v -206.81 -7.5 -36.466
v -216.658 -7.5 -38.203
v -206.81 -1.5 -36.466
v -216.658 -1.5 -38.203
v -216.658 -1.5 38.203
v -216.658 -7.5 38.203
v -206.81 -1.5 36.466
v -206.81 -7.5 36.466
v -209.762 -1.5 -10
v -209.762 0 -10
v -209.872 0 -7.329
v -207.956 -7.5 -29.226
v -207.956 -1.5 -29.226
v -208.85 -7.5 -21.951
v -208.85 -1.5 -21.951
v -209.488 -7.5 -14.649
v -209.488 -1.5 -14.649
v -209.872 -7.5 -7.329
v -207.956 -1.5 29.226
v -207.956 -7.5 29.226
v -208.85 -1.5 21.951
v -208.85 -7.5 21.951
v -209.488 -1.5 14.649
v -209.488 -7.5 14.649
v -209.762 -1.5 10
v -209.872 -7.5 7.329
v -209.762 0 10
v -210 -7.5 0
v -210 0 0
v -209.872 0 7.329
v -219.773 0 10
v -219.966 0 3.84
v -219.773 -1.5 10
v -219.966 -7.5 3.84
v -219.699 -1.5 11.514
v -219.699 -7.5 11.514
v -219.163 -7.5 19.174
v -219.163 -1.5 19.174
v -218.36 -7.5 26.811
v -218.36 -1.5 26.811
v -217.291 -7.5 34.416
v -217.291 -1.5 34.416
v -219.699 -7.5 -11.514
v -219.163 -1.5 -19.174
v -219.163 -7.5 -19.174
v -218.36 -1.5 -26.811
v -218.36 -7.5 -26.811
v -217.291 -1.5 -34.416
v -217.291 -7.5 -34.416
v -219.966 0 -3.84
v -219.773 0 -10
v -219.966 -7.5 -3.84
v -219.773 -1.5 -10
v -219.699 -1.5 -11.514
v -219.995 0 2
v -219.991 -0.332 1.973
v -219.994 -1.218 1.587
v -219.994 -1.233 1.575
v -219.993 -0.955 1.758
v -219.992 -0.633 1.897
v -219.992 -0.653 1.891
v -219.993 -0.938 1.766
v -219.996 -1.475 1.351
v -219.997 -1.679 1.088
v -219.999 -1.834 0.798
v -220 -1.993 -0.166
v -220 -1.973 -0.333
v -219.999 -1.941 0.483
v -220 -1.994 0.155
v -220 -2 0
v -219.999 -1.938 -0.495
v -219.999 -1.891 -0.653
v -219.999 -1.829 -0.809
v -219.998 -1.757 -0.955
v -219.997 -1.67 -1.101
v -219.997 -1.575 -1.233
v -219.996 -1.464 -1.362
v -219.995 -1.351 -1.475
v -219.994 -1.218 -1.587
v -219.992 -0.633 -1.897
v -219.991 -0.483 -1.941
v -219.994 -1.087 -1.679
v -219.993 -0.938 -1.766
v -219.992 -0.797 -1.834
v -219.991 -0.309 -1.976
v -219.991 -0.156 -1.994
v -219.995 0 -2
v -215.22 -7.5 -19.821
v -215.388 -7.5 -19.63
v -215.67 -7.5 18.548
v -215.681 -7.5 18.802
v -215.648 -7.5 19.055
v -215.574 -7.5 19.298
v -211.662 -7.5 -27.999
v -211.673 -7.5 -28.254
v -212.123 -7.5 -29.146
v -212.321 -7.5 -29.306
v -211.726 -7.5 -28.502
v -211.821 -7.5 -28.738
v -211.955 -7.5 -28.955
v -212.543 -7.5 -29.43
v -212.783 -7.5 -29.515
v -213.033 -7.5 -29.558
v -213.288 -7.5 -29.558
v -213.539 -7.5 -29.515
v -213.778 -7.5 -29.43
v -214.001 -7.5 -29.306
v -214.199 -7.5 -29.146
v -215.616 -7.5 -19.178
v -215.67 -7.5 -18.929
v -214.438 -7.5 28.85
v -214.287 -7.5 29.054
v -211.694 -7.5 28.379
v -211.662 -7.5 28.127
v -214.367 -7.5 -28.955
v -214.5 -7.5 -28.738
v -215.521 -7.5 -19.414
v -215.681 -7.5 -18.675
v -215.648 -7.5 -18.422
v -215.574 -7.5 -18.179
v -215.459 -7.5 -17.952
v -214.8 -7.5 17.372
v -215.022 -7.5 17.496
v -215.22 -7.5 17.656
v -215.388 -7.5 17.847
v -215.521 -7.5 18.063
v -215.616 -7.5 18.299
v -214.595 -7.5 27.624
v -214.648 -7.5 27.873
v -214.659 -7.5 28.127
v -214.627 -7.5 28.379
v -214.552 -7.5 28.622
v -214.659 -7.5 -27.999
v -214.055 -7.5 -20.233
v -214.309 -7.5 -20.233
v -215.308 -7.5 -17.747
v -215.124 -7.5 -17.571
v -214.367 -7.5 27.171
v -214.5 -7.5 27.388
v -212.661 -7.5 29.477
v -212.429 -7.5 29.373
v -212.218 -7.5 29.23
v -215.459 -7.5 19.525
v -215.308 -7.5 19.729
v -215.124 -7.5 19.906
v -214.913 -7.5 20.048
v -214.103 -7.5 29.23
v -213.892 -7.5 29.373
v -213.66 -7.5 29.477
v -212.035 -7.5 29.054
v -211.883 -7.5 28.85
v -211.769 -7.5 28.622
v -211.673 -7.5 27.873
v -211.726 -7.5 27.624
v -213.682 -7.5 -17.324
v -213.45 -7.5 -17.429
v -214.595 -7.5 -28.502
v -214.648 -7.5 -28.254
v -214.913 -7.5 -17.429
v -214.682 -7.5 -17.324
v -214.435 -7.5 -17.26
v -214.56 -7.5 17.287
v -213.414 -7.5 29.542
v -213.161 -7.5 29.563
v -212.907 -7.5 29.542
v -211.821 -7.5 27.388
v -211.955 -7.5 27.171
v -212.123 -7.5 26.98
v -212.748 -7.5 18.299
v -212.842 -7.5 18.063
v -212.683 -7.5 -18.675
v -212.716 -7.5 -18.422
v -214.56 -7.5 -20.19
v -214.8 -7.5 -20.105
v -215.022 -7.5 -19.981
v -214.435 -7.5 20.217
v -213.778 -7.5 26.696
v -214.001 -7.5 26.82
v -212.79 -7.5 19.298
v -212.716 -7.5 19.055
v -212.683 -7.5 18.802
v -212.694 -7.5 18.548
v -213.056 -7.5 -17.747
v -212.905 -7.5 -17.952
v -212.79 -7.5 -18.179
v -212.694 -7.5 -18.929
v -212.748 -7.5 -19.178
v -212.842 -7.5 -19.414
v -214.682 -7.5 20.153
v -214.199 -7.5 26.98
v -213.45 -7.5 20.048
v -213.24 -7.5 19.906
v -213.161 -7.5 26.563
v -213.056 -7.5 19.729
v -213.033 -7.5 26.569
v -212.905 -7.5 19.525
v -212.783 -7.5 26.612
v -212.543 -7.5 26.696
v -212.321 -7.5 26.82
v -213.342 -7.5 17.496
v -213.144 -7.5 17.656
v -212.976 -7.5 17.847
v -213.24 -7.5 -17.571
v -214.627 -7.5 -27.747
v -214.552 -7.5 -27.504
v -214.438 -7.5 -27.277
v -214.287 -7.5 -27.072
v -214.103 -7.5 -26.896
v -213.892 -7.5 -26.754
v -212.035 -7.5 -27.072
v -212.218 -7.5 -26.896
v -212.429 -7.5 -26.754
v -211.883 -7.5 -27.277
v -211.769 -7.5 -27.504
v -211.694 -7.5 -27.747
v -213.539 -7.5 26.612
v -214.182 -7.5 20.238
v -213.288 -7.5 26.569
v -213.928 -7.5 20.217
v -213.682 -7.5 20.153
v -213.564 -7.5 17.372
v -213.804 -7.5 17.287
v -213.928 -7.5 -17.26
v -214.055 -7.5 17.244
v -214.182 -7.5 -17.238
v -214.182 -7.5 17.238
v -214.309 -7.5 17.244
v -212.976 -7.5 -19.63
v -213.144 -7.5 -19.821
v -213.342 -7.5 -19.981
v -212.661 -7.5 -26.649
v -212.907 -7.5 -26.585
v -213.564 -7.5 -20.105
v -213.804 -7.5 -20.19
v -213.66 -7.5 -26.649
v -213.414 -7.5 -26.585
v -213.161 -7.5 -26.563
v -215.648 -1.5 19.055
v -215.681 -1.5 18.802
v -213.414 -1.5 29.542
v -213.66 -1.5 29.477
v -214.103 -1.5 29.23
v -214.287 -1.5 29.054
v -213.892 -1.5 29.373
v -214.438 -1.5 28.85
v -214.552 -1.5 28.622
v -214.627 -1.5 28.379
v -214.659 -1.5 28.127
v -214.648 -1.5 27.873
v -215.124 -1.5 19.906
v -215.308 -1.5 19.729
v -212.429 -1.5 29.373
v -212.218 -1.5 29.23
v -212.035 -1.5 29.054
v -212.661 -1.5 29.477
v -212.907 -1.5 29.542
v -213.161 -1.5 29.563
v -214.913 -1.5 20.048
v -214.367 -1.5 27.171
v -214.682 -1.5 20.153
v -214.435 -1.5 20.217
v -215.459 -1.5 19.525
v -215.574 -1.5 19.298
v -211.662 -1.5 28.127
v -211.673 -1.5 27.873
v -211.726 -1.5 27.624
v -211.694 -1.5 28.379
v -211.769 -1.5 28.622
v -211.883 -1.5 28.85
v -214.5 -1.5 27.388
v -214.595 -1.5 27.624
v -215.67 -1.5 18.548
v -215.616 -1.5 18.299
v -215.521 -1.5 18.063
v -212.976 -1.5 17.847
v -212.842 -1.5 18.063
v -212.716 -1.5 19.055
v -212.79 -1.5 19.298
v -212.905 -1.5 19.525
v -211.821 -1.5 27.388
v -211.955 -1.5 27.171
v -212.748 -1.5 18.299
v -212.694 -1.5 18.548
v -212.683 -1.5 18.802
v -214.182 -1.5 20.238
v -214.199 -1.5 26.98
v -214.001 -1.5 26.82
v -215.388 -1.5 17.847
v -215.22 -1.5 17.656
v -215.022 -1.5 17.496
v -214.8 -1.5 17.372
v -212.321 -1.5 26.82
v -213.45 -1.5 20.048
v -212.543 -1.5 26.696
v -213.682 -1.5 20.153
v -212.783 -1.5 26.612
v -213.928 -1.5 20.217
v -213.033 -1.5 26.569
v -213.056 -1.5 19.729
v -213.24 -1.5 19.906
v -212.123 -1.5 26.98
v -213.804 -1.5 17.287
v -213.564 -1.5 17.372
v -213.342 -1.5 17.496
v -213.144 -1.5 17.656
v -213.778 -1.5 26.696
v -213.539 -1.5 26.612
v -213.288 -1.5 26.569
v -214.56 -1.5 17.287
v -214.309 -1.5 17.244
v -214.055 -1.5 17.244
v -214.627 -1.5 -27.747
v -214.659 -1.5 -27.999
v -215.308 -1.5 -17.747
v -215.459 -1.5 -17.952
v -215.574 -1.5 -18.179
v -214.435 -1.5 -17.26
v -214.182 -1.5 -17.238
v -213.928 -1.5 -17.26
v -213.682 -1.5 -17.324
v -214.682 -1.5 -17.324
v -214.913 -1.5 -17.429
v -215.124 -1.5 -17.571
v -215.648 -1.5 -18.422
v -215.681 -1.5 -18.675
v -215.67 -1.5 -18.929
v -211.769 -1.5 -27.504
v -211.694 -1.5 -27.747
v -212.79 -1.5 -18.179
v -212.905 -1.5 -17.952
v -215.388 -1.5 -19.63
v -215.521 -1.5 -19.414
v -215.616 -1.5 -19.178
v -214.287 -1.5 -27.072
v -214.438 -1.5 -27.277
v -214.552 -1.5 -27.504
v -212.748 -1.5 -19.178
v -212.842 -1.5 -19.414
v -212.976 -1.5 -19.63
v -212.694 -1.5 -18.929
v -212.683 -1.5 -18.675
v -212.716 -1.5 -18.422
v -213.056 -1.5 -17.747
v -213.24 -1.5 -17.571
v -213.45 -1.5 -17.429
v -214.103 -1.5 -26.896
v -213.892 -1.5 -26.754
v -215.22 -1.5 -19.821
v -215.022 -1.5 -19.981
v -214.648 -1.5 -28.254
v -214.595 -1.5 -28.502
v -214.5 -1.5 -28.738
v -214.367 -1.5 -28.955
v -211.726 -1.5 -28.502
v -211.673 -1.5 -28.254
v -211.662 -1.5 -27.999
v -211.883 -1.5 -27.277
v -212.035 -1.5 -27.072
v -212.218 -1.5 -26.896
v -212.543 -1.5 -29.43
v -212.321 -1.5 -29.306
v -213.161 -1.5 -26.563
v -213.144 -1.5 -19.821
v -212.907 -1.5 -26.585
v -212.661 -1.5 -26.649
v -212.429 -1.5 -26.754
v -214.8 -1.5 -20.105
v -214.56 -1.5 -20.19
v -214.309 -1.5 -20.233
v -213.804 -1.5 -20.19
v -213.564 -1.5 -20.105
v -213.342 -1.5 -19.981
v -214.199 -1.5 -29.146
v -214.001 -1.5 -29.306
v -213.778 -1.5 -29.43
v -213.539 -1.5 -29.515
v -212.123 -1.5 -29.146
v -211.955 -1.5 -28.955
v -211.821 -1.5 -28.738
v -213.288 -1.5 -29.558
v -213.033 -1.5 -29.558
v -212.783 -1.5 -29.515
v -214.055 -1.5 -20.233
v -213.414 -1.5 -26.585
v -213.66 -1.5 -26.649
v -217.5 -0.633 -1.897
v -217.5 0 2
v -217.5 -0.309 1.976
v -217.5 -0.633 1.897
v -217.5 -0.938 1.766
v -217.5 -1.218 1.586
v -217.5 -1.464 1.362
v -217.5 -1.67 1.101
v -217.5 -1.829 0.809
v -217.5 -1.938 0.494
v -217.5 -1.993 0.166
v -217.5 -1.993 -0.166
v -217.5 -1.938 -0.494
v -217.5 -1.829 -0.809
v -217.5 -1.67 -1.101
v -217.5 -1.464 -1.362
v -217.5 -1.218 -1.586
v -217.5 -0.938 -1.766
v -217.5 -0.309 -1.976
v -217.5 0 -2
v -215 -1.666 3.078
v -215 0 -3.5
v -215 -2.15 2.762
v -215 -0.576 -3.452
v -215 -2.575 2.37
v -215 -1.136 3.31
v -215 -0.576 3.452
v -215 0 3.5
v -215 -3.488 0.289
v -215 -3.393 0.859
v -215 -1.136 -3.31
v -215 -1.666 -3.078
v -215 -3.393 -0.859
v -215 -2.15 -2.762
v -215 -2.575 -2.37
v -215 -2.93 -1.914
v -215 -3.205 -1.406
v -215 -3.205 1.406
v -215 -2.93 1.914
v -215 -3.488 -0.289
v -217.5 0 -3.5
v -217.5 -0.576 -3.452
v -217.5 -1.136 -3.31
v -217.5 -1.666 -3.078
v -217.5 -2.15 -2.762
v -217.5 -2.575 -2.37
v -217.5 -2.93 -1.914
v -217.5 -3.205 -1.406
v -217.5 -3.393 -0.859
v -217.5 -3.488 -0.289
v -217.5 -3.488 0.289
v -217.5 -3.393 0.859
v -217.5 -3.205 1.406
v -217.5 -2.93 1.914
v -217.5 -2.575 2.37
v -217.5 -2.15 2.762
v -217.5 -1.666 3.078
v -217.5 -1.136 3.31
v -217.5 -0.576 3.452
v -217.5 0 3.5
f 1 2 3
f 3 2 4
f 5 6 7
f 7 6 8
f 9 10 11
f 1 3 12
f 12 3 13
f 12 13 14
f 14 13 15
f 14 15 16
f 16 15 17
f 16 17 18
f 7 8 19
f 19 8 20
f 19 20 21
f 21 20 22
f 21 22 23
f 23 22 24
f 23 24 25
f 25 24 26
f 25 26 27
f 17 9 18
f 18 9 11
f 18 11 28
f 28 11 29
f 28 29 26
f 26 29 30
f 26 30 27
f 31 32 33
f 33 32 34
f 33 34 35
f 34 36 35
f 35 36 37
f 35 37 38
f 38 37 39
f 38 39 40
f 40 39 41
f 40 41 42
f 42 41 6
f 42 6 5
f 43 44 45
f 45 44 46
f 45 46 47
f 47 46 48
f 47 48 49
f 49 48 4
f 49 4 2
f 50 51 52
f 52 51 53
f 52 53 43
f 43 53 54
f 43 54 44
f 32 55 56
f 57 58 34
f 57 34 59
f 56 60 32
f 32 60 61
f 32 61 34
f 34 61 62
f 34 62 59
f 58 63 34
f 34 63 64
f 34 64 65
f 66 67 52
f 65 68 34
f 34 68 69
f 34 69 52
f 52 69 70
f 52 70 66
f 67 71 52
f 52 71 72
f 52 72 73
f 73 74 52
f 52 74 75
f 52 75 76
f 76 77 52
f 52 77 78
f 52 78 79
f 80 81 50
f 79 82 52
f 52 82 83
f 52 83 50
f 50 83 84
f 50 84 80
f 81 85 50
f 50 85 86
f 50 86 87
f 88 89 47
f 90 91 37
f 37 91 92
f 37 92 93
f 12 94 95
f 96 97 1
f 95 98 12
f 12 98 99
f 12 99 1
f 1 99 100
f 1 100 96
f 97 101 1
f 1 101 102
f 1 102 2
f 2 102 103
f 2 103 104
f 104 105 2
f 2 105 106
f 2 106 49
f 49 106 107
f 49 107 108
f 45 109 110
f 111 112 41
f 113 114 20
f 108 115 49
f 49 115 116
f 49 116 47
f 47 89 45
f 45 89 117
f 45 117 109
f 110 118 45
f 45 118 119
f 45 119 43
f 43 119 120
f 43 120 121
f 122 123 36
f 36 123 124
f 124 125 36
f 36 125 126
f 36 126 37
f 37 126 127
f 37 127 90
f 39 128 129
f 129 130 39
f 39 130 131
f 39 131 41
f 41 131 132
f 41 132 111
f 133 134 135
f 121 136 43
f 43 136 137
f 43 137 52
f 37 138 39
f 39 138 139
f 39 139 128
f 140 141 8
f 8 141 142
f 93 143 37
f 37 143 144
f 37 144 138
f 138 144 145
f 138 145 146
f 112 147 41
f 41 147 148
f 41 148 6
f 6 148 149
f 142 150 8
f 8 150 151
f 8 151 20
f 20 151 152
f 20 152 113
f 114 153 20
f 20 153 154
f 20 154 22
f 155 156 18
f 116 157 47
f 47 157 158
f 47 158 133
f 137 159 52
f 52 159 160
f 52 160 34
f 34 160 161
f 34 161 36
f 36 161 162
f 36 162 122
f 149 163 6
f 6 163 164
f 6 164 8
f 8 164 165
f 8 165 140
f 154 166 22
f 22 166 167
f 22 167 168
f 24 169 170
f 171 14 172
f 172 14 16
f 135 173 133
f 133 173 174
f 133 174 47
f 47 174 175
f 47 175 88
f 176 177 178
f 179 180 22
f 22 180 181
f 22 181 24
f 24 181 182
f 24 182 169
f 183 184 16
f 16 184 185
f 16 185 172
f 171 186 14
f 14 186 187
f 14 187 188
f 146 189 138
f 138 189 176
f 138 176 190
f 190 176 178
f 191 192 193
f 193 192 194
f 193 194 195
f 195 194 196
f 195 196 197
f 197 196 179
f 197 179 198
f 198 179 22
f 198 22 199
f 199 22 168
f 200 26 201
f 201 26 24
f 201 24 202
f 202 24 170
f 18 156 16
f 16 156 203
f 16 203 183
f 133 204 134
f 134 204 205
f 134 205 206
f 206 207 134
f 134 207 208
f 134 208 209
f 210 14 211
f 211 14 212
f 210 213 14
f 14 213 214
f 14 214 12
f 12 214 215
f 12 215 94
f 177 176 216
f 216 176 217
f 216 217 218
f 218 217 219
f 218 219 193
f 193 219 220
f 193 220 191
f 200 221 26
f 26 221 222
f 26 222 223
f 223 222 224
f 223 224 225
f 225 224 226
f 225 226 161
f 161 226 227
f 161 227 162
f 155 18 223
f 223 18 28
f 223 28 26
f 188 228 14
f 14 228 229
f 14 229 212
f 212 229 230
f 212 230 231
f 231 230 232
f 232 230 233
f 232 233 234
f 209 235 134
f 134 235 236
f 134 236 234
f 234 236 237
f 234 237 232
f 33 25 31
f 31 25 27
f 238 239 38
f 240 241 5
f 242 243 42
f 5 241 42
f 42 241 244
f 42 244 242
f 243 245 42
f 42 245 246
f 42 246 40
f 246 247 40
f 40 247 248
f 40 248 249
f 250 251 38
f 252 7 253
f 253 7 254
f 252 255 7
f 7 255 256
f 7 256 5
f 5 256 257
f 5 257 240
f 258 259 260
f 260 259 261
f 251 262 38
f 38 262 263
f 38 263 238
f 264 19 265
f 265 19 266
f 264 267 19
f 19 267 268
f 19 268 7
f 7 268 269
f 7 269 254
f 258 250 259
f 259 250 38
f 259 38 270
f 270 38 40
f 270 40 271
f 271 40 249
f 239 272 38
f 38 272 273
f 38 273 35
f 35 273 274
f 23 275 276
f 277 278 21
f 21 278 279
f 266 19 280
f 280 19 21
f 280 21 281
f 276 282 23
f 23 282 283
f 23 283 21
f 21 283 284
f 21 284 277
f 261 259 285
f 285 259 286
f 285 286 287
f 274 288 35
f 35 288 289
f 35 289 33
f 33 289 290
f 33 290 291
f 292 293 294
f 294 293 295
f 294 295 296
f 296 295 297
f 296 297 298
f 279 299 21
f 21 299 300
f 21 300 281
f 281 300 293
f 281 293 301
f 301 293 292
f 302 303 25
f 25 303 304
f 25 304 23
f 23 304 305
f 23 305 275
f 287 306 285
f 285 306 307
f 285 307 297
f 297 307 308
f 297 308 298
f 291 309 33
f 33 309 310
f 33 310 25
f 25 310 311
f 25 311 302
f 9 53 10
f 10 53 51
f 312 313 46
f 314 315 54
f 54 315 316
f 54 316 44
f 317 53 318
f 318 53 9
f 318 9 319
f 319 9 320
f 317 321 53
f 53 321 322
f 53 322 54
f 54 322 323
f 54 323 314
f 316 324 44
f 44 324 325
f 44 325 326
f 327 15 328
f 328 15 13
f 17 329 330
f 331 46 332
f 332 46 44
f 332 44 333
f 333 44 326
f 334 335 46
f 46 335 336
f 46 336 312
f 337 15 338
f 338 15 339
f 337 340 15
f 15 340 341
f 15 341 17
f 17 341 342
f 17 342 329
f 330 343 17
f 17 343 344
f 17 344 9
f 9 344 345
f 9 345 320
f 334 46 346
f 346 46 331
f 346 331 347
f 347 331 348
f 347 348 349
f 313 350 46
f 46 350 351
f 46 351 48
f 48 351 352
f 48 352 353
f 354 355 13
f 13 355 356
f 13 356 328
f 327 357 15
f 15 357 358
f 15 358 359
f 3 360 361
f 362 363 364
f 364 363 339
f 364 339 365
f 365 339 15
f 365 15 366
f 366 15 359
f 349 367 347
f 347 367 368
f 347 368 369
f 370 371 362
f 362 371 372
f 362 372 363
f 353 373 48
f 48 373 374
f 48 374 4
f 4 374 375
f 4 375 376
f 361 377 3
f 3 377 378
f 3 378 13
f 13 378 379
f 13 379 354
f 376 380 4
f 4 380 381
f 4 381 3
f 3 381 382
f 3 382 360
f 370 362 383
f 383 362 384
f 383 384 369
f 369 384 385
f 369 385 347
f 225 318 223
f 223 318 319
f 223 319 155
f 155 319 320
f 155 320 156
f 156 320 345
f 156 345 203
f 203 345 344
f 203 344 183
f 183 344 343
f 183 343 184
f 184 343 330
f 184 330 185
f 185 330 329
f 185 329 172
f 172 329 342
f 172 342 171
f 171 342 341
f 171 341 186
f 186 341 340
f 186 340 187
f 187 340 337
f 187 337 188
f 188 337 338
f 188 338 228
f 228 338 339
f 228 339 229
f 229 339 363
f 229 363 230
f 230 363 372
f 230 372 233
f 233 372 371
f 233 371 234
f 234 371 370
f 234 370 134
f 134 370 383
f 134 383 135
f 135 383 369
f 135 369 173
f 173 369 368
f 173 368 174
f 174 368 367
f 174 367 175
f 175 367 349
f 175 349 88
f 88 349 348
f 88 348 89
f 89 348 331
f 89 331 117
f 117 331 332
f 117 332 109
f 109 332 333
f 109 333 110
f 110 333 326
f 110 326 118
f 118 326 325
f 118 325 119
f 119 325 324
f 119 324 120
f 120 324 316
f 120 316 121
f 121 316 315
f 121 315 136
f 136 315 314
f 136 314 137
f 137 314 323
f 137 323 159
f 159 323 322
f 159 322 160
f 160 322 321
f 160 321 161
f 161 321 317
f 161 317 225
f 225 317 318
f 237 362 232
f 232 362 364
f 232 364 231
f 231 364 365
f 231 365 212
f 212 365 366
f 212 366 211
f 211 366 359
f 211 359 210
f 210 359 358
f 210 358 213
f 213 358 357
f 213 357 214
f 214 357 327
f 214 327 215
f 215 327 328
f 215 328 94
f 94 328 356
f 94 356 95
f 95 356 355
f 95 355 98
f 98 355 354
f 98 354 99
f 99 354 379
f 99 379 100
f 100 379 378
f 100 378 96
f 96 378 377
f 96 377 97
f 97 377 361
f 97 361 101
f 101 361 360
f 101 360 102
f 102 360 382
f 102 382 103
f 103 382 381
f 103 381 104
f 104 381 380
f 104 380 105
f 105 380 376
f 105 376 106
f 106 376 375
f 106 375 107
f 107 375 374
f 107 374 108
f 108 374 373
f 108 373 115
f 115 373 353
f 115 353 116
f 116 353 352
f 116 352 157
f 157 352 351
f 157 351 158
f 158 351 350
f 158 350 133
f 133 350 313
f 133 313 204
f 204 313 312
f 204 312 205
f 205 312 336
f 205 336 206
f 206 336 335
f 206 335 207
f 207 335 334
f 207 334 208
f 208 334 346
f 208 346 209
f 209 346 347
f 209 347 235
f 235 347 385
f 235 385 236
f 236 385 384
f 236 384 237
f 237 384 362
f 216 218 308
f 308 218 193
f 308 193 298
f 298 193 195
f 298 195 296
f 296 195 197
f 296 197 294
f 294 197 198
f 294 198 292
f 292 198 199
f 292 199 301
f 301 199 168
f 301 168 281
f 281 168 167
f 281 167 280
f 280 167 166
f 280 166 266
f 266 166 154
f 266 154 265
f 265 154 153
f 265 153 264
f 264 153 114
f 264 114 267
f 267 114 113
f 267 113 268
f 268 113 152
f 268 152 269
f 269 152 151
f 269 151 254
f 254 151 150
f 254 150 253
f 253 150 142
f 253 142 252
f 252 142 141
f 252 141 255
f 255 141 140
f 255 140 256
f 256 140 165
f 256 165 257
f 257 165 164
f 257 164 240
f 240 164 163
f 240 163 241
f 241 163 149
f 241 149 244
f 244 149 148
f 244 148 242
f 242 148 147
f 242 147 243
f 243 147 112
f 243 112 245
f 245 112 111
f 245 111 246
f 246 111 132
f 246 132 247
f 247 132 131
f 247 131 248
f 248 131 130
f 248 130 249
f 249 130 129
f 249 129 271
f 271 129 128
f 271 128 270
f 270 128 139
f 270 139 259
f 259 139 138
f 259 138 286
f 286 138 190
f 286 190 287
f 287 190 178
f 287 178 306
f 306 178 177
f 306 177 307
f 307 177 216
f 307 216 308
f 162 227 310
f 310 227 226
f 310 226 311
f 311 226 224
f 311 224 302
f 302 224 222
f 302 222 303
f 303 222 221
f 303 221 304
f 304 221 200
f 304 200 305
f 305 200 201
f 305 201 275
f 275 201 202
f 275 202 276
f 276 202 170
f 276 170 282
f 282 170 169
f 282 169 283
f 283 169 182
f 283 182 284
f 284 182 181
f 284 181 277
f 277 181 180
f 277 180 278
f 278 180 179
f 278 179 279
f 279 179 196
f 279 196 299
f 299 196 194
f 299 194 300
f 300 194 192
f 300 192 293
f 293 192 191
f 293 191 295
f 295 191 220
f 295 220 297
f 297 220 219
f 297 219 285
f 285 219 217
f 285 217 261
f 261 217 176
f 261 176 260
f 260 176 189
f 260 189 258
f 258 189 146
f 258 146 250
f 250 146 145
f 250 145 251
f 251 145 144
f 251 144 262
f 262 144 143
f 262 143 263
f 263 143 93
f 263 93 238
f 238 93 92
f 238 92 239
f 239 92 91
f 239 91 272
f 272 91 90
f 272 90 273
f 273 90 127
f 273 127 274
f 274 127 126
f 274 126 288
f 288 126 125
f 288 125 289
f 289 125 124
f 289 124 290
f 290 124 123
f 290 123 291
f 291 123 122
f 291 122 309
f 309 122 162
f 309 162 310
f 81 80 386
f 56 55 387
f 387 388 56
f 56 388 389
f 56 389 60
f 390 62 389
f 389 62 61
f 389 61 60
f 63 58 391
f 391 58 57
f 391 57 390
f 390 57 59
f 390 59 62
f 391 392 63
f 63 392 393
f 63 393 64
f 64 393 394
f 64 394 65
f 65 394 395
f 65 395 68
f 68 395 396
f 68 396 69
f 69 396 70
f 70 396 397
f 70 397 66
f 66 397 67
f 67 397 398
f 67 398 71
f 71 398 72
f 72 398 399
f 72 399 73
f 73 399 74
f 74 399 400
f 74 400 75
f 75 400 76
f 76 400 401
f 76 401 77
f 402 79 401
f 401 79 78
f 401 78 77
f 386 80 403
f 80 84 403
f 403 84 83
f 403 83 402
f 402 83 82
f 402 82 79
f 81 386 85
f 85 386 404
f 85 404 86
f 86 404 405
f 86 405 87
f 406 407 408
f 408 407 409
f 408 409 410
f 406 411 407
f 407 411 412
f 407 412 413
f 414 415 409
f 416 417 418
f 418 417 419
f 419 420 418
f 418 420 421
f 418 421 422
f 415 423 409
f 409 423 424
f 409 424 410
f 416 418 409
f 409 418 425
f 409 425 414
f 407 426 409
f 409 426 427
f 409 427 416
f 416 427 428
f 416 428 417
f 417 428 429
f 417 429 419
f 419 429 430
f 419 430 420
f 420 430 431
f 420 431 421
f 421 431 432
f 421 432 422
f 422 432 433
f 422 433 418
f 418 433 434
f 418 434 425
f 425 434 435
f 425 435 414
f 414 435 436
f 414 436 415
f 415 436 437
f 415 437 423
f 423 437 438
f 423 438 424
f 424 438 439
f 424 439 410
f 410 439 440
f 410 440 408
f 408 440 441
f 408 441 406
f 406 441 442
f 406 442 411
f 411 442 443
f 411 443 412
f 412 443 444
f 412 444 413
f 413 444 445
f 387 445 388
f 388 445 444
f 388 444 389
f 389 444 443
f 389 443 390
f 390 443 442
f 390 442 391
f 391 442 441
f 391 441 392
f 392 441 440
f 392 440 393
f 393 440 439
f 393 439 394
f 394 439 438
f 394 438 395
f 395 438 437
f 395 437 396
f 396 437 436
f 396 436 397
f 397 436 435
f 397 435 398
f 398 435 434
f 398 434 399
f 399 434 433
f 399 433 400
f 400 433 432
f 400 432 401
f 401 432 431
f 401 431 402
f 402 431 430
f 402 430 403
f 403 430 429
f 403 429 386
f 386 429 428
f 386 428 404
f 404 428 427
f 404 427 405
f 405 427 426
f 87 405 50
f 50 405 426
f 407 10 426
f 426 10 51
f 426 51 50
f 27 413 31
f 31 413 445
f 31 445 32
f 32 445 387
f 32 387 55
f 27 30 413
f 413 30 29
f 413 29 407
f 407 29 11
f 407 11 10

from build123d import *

# Parameters (mm, degrees)
BASE2_DEPTH            = 7.5
MOUNT2_START           = -1.5
MOUNT2_DEPTH           = 3
MOUNT_HOLE2_DEPTH      = 224.418192135
MOUNT_HOLE2_DEPTH_BACK = 224.418192135
SKETCH16_R             = 1.5
SKETCH18_W             = 2.5
SKETCH18_H             = 3.5
SKETCH19_R             = 2
SHAFTHOLE_DEPTH        = 40.784051683
SKETCH20_W             = 20
SKETCH20_H             = 76.405198174
CUT_EXTRUDE10_DEPTH    = 10


with BuildPart() as part:
    # Sketch13 → base2 (new, symmetric)
    with BuildSketch(Plane(origin=(0, 0, 0), x_dir=(1, 0, 0), z_dir=(0, 1, 0))):
        with BuildLine():
            ThreePointArc((-209.761769634, 10), (-208.70564487, 23.279901188), (-206.809628133, 36.46611731))
            Line((-206.809628133, 36.46611731), (-216.657705663, 38.202599087))
            ThreePointArc((-216.657705663, 38.202599087), (-218.670303662, 24.151569236), (-219.772609758, 10))
            Line((-219.772609758, 10), (-209.761769634, 10))
        make_face()
        with BuildLine():
            ThreePointArc((-209.761769634, -10), (-210, 0), (-209.761769634, 10))
            Line((-209.761769634, 10), (-219.772609758, 10))
            ThreePointArc((-219.772609758, 10), (-220, 0), (-219.772609758, -10))
            Line((-219.772609758, -10), (-209.761769634, -10))
        make_face()
        with BuildLine():
            Line((-216.657705663, -38.202599087), (-206.809628133, -36.46611731))
            ThreePointArc((-206.809628133, -36.46611731), (-208.70564487, -23.279901188), (-209.761769634, -10))
            Line((-209.761769634, -10), (-219.772609758, -10))
            ThreePointArc((-219.772609758, -10), (-218.670303662, -24.151569236), (-216.657705663, -38.202599087))
        make_face()
    extrude(amount=BASE2_DEPTH, both=True)

    # Sketch14 → mount2 (cut)
    with BuildSketch(Plane(origin=(0, 0, 0), x_dir=(1, 0, 0), z_dir=(0, 1, 0)).offset(MOUNT2_START)):
        with BuildLine():
            Line((-209.761769634, -10), (-219.772609758, -10))
            ThreePointArc((-219.772609758, -10), (-218.670303662, -24.151569236), (-216.657705663, -38.202599087))
            Line((-216.657705663, -38.202599087), (-206.809628133, -36.46611731))
            ThreePointArc((-206.809628133, -36.46611731), (-208.70564487, -23.279901188), (-209.761769634, -10))
        make_face()
        with BuildLine():
            Line((-209.761769634, 10), (-219.772609758, 10))
            ThreePointArc((-219.772609758, 10), (-218.670303662, 24.151569236), (-216.657705663, 38.202599087))
            Line((-216.657705663, 38.202599087), (-206.809628133, 36.46611731))
            ThreePointArc((-206.809628133, 36.46611731), (-208.70564487, 23.279901188), (-209.761769634, 10))
        make_face()
    extrude(amount=MOUNT2_DEPTH, mode=Mode.SUBTRACT)

    # Sketch16 → mount hole2 (cut, two sides: drawn at the far end of the back side and taken through both)
    with BuildSketch(Plane(origin=(0, 0, 0), x_dir=(1, 0, 0), z_dir=(0, 1, 0)).offset(-MOUNT_HOLE2_DEPTH_BACK)):
        with Locations(Location((-213.160645195, 28.063131327, 0), (0, 0, 270))):
            Circle(SKETCH16_R)
        with Locations(Location((-214.18186009, 18.738484691, 0), (0, 0, 270))):
            Circle(SKETCH16_R)
        with Locations(Location((-214.18186009, -18.738484691, 0), (0, 0, 270))):
            Circle(SKETCH16_R)
        with Locations(Location((-213.160645195, -28.063131327, 0), (0, 0, 270))):
            Circle(SKETCH16_R)
    extrude(amount=MOUNT_HOLE2_DEPTH + MOUNT_HOLE2_DEPTH_BACK, mode=Mode.SUBTRACT)

    # Sketch18 → bearing (revolve, cut)
    with BuildSketch(Plane(origin=(0, 0, 0), x_dir=(1, 0, 0), z_dir=(0, 1, 0)), mode=Mode.PRIVATE) as bearing_sk:
        with Locations((-216.25, 1.75)):
            Rectangle(SKETCH18_W, SKETCH18_H)
    revolve(bearing_sk.sketch.rotate(Axis((-215, 0, 0), (-1, 0, 0)), 180), axis=Axis((-215, 0, 0), (-1, 0, 0)), mode=Mode.SUBTRACT)

    # Sketch19 → shafthole (cut, through all)
    with BuildSketch(Plane(origin=(-215, 0, 0), x_dir=(0, 0, -1), z_dir=(1, 0, 0))):
        Circle(SKETCH19_R)
    extrude(amount=-SHAFTHOLE_DEPTH, mode=Mode.SUBTRACT)

    # Sketch20 → Cut-Extrude10 (cut)
    with BuildSketch(Plane(origin=(0, 0, 0), x_dir=(1, 0, 0), z_dir=(0, 1, 0))):
        with Locations((-210, 0)):
            Rectangle(SKETCH20_W, SKETCH20_H)
    extrude(amount=CUT_EXTRUDE10_DEPTH, mode=Mode.SUBTRACT)


solid = part.part
